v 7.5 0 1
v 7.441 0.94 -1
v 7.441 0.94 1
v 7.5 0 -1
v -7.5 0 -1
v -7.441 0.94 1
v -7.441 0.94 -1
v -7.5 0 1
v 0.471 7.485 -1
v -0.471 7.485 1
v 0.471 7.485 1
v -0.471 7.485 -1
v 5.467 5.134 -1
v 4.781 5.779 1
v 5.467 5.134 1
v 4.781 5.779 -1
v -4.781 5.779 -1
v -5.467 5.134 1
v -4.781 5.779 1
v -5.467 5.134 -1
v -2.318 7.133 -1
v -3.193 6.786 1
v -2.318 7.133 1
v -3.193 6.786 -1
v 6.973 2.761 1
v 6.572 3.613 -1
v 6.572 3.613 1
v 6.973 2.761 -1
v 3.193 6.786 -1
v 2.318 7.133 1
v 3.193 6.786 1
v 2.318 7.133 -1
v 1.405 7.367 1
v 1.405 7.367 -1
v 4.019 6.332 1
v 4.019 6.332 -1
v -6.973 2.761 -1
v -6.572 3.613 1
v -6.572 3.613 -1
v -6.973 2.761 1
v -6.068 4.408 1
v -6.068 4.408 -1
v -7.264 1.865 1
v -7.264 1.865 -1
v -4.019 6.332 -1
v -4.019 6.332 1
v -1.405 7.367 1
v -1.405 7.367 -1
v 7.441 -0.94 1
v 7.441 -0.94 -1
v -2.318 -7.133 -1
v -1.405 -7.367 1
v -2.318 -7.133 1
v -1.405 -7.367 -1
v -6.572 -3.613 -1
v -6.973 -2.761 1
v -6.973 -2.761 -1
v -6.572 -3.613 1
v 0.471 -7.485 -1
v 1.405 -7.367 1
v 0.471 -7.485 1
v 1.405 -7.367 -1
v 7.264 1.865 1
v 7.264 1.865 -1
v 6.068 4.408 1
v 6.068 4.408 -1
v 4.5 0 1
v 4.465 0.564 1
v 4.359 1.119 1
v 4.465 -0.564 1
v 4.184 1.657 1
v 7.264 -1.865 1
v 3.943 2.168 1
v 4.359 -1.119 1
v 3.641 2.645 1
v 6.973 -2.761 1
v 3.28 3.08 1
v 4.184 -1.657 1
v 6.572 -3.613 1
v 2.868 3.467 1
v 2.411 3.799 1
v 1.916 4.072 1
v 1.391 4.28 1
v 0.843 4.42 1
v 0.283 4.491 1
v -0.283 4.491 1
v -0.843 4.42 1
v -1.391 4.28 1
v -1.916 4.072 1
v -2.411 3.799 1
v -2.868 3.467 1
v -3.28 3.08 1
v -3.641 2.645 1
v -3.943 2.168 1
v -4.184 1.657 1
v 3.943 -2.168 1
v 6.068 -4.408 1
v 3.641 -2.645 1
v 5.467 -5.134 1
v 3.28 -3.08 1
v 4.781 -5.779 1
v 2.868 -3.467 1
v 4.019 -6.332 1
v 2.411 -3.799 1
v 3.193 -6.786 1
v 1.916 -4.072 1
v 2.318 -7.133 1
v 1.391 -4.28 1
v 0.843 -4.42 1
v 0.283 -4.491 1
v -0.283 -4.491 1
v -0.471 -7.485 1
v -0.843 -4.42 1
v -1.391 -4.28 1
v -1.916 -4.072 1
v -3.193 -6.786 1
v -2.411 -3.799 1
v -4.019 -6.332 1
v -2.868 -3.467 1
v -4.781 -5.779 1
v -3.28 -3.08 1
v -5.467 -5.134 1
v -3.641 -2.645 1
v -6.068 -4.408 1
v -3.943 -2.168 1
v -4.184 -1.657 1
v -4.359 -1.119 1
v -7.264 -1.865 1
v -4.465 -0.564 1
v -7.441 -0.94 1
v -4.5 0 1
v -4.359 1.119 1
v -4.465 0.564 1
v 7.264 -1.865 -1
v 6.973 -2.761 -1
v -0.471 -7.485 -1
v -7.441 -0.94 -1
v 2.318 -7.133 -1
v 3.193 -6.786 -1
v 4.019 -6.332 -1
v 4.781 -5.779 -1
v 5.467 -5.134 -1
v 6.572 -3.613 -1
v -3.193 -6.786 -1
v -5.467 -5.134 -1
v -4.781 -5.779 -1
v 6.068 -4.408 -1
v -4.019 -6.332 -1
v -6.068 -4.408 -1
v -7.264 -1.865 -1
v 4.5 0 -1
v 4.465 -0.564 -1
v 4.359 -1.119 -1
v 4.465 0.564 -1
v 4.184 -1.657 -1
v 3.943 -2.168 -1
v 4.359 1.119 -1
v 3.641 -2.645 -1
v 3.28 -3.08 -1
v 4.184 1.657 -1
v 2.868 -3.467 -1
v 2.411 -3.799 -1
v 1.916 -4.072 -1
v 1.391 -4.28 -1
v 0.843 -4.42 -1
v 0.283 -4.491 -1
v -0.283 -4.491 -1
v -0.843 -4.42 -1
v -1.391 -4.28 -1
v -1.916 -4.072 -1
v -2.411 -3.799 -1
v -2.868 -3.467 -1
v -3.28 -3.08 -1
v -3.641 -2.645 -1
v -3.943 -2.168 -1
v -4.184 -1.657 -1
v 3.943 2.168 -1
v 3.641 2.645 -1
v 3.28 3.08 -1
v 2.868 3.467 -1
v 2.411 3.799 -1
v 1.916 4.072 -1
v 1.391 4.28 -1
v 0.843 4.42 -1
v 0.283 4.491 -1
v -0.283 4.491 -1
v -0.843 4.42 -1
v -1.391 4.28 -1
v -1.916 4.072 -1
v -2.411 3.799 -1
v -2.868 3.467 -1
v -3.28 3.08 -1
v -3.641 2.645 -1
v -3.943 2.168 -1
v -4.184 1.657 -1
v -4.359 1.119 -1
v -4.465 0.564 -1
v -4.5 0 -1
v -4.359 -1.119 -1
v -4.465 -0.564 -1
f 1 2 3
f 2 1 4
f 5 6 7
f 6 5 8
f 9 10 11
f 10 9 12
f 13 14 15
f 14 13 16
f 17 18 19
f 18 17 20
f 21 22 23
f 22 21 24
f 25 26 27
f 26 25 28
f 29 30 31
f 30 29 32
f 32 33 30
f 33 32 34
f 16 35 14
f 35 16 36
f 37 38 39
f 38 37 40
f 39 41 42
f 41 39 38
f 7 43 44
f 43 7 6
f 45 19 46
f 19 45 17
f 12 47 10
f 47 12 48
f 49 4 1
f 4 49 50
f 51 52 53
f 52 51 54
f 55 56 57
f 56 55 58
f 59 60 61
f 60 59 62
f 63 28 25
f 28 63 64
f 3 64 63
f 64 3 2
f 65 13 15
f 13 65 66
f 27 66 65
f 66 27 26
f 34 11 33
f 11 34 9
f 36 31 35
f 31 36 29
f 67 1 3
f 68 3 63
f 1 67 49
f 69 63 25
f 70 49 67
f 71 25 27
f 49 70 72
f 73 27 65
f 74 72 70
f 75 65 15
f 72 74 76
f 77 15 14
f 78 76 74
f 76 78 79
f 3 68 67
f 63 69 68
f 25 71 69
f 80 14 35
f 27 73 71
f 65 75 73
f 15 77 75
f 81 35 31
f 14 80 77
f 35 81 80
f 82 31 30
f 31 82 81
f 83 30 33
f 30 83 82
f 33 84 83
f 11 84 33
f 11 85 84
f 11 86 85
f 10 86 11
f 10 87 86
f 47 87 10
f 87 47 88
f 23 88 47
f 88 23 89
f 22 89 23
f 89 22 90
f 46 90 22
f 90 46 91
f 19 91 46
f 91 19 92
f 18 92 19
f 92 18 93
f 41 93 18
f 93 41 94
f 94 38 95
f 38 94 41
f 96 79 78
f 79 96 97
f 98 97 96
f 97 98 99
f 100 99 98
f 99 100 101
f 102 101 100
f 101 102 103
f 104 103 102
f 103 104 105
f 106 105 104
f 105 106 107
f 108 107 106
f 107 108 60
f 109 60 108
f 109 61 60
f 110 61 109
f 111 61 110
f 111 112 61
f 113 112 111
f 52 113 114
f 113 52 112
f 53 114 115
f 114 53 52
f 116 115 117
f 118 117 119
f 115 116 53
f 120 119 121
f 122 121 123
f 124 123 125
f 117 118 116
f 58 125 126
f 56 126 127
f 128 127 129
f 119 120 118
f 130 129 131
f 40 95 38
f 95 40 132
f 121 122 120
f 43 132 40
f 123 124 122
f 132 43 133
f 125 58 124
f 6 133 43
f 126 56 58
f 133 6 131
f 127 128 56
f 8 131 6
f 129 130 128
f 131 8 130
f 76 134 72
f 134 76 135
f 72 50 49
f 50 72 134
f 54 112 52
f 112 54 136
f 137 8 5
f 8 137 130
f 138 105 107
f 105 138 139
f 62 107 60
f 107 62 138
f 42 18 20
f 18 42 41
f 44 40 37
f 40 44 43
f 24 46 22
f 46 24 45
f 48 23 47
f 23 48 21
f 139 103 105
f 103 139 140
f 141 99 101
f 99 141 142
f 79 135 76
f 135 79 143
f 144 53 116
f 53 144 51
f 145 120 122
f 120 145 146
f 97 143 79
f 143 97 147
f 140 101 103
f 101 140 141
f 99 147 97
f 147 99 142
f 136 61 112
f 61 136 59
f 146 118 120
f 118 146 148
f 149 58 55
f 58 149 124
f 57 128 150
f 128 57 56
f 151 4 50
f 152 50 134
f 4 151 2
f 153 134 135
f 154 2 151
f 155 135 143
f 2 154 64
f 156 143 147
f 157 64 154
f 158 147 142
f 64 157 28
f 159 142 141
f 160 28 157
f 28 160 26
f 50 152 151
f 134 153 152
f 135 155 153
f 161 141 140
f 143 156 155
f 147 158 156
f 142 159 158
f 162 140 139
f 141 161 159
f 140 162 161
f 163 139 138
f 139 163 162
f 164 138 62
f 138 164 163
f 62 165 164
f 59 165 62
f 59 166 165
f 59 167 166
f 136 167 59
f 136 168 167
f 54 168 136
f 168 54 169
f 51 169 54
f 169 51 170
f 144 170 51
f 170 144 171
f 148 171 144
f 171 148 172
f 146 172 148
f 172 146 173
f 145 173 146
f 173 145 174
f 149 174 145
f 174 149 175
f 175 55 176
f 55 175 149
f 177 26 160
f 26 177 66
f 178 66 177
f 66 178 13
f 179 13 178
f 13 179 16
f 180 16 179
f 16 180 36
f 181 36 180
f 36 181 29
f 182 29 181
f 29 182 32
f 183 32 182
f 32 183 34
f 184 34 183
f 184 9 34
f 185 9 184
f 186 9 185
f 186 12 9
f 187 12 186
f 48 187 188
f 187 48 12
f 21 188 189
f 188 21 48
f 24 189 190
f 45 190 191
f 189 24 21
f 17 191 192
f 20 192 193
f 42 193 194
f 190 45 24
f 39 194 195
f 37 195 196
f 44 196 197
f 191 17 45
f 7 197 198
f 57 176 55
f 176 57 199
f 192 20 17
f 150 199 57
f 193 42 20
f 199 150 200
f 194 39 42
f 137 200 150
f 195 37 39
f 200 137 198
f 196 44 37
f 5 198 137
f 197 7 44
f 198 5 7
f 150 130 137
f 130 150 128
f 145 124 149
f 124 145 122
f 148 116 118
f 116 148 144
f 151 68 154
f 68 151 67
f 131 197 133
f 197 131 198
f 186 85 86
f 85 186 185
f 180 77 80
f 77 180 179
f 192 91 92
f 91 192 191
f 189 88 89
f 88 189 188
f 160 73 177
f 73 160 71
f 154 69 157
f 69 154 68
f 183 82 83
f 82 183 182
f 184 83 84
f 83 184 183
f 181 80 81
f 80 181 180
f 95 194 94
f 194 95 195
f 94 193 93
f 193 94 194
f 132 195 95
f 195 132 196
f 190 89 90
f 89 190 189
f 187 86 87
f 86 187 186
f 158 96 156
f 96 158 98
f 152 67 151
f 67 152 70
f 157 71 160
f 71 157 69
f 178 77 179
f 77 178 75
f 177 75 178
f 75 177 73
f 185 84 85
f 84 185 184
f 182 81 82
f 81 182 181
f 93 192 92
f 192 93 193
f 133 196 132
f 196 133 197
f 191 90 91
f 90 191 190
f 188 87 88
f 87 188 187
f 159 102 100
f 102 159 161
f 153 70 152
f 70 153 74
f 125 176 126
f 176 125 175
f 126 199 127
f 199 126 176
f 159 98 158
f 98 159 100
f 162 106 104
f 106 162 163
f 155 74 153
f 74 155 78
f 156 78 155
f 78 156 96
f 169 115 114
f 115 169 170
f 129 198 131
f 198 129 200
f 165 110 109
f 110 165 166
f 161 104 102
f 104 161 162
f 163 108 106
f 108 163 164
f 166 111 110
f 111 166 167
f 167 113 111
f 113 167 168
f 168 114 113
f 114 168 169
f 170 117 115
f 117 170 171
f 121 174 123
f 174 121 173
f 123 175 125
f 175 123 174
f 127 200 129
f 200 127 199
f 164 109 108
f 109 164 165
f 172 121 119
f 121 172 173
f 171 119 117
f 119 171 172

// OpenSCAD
$fn = 50;


difference() {
	union() {
		translate(v = [0, 0, -1.0000000000]) {
			cylinder(h = 2, r = 7.5000000000);
		}
	}
	union() {
		translate(v = [0, 0, -100.0000000000]) {
			cylinder(h = 200, r = 4.5000000000);
		}
	}
}
